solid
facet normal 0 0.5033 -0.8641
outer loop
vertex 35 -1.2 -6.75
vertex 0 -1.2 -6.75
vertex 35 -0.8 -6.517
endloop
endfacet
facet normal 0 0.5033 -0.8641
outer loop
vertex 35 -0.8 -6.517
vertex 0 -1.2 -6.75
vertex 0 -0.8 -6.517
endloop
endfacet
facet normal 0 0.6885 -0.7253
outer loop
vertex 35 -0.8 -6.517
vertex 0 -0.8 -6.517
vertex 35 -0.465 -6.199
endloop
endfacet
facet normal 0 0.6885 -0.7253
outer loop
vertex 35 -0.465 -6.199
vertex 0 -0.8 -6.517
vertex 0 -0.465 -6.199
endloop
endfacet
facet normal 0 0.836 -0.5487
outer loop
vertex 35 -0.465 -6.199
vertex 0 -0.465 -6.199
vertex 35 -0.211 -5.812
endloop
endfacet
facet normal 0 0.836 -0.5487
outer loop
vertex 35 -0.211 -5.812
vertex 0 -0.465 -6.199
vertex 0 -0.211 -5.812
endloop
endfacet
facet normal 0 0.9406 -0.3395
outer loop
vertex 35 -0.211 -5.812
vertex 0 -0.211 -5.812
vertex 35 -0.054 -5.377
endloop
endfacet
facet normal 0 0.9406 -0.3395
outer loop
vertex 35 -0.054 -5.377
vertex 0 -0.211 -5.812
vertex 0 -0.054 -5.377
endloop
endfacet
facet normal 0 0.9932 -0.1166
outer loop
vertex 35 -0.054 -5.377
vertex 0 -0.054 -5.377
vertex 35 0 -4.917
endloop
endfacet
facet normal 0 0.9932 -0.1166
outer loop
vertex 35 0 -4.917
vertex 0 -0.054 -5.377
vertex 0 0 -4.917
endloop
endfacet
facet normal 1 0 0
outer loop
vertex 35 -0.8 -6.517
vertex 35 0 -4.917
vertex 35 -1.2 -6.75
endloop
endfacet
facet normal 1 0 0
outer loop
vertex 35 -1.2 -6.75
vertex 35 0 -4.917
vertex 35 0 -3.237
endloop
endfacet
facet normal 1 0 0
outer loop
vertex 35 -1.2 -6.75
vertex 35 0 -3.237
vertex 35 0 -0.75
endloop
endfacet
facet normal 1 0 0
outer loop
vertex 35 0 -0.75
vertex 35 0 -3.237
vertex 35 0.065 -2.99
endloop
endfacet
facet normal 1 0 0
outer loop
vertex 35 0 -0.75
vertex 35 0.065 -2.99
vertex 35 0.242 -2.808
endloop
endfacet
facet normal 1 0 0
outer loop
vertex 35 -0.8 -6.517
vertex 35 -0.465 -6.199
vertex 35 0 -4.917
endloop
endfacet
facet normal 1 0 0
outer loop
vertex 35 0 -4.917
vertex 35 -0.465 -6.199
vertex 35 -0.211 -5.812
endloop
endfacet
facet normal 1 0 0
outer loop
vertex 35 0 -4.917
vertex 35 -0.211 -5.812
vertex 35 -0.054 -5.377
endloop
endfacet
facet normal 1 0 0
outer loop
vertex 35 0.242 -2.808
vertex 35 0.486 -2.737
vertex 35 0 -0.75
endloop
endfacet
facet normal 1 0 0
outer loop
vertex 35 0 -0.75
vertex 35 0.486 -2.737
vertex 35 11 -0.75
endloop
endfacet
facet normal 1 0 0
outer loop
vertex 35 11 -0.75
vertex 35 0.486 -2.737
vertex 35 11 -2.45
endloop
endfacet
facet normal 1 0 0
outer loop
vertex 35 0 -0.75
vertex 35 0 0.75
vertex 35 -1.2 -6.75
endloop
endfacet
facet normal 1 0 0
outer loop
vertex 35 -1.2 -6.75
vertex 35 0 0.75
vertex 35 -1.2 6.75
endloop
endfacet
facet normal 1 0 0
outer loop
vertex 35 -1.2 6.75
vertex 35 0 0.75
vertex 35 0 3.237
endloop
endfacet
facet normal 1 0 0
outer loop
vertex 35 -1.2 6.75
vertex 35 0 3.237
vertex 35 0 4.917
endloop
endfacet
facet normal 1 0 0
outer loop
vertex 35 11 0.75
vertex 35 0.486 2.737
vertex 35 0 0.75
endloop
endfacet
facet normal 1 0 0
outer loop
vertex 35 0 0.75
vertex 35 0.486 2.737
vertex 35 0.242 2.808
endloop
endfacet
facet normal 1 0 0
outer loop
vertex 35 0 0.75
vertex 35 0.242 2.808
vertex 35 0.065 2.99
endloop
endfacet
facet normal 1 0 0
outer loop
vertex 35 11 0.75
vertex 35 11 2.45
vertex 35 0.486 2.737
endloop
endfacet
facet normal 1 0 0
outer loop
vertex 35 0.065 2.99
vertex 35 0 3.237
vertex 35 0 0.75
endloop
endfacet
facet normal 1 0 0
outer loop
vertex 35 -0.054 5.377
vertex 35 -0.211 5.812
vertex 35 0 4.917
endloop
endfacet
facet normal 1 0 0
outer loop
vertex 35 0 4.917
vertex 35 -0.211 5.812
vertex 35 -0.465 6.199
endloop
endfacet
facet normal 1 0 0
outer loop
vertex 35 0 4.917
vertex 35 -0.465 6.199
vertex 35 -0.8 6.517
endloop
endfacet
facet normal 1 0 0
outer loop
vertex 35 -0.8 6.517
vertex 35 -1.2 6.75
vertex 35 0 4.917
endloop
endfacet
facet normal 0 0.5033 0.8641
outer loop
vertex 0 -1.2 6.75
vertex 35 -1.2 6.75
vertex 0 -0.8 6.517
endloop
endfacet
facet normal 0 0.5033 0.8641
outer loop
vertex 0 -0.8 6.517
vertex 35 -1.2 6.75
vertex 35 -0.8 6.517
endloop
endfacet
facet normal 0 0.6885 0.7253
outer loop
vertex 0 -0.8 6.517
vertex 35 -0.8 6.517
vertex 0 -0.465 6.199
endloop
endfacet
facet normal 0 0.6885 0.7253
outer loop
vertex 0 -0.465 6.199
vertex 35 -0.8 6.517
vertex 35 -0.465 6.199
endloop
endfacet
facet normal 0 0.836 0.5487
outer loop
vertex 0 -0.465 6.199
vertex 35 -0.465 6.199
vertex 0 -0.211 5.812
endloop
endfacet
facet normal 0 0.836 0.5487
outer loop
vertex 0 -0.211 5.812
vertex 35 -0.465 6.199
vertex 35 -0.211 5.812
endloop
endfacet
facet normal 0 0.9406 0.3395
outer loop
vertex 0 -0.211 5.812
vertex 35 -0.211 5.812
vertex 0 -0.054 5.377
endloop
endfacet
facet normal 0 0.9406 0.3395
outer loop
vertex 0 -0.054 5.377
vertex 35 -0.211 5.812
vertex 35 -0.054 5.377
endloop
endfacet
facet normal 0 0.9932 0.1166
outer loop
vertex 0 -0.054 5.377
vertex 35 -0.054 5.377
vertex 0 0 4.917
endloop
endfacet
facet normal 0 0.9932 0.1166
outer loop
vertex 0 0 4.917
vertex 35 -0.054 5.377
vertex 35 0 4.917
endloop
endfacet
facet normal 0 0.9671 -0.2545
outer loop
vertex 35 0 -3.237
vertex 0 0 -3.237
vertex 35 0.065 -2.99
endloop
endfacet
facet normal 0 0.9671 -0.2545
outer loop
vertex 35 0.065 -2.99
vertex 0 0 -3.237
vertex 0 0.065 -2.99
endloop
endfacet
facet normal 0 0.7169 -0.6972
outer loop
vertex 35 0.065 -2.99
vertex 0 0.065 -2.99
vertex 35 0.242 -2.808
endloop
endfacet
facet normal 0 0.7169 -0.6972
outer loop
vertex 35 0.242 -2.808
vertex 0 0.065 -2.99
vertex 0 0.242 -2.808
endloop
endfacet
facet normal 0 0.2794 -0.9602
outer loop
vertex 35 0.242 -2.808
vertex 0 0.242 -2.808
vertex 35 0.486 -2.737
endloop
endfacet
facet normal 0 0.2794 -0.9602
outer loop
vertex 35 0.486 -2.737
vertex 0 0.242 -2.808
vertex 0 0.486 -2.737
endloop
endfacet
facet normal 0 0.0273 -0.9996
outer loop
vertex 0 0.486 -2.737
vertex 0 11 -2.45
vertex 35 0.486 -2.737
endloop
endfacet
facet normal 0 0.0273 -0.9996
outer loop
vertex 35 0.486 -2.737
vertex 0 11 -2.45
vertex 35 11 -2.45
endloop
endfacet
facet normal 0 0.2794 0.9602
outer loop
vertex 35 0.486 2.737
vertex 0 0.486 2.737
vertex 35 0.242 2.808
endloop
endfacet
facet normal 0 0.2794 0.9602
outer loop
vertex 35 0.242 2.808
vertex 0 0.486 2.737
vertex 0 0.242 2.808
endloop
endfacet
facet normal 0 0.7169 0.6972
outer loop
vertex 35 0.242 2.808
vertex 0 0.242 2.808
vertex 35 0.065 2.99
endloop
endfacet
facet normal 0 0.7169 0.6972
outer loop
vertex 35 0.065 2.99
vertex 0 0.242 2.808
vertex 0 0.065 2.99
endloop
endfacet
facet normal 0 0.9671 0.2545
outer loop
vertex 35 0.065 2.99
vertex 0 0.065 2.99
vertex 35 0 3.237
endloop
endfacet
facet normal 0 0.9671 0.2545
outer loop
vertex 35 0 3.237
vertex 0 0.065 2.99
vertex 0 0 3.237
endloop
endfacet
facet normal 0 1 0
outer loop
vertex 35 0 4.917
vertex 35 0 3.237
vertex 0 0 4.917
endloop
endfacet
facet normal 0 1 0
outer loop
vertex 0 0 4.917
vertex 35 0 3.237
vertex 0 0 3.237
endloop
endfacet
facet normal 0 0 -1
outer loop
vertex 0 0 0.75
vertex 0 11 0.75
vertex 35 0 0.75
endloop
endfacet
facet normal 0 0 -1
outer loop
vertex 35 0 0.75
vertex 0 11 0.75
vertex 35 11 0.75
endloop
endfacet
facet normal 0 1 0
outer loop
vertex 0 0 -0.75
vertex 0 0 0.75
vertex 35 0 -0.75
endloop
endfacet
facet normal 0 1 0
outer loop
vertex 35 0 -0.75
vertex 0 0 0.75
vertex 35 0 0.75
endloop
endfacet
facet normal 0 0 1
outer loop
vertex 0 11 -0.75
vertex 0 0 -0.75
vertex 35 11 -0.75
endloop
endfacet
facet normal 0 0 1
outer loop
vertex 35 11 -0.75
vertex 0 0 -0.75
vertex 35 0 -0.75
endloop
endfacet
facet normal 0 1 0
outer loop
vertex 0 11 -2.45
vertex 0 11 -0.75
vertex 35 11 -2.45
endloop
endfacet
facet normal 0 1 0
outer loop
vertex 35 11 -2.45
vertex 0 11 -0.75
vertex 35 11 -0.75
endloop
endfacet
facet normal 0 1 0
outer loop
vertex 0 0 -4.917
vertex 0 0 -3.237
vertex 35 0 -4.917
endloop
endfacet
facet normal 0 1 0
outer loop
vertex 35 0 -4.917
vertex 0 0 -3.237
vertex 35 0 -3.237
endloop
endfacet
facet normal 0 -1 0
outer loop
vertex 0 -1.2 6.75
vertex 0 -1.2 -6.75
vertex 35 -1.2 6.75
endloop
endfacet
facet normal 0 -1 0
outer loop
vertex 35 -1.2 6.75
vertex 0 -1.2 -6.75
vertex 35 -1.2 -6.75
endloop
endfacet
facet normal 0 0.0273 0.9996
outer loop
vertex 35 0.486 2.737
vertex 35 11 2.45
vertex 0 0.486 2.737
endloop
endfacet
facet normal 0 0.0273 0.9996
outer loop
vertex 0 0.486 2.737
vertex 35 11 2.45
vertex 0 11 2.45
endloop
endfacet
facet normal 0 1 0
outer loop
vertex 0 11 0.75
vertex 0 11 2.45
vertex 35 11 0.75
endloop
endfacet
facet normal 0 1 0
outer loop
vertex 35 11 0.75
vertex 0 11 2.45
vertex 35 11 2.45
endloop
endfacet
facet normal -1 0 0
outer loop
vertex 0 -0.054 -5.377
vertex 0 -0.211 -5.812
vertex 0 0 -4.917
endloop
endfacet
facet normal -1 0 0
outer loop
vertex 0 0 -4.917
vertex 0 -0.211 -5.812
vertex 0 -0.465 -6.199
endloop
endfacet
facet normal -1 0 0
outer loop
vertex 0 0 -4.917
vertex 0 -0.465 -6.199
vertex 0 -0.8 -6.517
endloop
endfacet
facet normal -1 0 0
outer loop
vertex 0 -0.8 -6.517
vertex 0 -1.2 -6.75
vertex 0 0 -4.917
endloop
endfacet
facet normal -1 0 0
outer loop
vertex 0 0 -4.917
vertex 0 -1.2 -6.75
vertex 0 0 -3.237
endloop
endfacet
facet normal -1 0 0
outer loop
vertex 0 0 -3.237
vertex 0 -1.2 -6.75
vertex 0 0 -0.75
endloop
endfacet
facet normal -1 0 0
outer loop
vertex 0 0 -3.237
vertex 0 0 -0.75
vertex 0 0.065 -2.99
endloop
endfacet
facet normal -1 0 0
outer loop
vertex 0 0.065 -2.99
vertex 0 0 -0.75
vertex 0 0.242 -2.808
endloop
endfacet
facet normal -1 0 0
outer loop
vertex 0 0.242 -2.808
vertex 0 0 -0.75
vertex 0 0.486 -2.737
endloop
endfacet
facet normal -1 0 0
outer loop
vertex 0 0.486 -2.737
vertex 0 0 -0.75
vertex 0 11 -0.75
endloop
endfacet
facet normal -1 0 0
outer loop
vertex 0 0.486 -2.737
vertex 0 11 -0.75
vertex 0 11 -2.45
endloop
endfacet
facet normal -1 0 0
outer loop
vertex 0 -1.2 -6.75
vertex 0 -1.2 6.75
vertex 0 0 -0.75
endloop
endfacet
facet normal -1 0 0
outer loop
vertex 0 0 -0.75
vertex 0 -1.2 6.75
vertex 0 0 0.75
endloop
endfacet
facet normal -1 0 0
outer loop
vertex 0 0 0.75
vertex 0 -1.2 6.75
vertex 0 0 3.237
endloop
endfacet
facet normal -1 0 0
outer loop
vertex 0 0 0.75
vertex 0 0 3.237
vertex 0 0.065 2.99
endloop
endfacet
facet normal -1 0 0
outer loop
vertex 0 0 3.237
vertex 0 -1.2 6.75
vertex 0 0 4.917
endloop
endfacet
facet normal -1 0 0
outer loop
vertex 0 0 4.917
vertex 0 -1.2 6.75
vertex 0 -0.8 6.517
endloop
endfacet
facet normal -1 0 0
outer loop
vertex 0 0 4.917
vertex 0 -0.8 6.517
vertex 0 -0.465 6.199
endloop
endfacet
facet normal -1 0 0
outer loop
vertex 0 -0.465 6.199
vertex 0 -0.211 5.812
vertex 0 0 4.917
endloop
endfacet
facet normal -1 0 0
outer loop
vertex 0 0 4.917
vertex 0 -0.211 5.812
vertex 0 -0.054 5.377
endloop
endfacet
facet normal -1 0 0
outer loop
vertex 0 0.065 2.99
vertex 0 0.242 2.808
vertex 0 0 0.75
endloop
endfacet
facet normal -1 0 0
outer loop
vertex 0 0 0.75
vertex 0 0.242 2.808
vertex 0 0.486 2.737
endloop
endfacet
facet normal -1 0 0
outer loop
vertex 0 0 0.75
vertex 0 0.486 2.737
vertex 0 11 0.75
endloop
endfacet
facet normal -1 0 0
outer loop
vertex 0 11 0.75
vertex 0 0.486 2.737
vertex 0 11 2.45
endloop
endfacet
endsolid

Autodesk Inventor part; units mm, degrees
ref_plane "YZ Plane" through (0, 0, 0) normal (1, 0, 0) x (0, 1, 0)
ref_plane "XZ Plane" through (0, 0, 0) normal (0, 1, 0) x (-1, 0, 0)
ref_plane "XY Plane" through (0, 0, 0) normal (0, 0, 1) x (1, 0, 0)
sketch "Sketch1" plane through (0, 0, 0) normal (1, 0, 0) x (0, 1, 0)
  line L0 (0, 0) -> (0, -0.75) construction
  line L1 (0, 0) -> (0, 0.75) construction
  line L2 (0, 0.75) -> (11, 0.75)
  line L3 (11, 0.75) -> (11, 2.45)
  line L4 (0, -0.75) -> (11, -0.75)
  line L5 (11, -0.75) -> (11, -2.45)
  line L6 (0, 0.75) -> (0, 2.75)
  line L7 (0, 2.75) -> (11, 2.45)
  line L8 (0, -0.75) -> (0, -2.75)
  line L9 (0, -2.75) -> (11, -2.45)
  line L10 (0, -0.75) -> (0, 0.75)
  line L11 (0, 2.75) -> (0, 6.75)
  line L12 (0, -2.75) -> (0, -6.75)
  line L13 (0, -2.75) -> (4, -2.75) construction
  line L14 (0, -6.75) -> (-1.2, -6.75)
  line L15 (-1.2, -6.75) -> (-1.2, 6.75)
  line L16 (-1.2, 6.75) -> (0, 6.75)
  dimension "d0" = 0.75
  dimension "d1" = 0.75
  dimension "d2" = 11
  dimension "d3" = 1.7
  dimension "d4" = 11
  dimension "d5" = 1.7
  dimension "d6" = 2
  dimension "d7" = 2
  dimension "d8" = 4
  dimension "d9" = 4
  dimension "d10" = 90
  dimension "d11" = 1.2
extrude "Extrusion1" add sketch "Sketch1" along normal blind 35
fillet "Fillet1" radius 0.5 2 edges at (17.5, 0, 2.75) (17.5, 0, -2.75)
fillet "Fillet2" radius 2 2 edges at (17.5, 0, 6.75) (17.5, 0, -6.75)
properties part number "cleat bracket v2"
